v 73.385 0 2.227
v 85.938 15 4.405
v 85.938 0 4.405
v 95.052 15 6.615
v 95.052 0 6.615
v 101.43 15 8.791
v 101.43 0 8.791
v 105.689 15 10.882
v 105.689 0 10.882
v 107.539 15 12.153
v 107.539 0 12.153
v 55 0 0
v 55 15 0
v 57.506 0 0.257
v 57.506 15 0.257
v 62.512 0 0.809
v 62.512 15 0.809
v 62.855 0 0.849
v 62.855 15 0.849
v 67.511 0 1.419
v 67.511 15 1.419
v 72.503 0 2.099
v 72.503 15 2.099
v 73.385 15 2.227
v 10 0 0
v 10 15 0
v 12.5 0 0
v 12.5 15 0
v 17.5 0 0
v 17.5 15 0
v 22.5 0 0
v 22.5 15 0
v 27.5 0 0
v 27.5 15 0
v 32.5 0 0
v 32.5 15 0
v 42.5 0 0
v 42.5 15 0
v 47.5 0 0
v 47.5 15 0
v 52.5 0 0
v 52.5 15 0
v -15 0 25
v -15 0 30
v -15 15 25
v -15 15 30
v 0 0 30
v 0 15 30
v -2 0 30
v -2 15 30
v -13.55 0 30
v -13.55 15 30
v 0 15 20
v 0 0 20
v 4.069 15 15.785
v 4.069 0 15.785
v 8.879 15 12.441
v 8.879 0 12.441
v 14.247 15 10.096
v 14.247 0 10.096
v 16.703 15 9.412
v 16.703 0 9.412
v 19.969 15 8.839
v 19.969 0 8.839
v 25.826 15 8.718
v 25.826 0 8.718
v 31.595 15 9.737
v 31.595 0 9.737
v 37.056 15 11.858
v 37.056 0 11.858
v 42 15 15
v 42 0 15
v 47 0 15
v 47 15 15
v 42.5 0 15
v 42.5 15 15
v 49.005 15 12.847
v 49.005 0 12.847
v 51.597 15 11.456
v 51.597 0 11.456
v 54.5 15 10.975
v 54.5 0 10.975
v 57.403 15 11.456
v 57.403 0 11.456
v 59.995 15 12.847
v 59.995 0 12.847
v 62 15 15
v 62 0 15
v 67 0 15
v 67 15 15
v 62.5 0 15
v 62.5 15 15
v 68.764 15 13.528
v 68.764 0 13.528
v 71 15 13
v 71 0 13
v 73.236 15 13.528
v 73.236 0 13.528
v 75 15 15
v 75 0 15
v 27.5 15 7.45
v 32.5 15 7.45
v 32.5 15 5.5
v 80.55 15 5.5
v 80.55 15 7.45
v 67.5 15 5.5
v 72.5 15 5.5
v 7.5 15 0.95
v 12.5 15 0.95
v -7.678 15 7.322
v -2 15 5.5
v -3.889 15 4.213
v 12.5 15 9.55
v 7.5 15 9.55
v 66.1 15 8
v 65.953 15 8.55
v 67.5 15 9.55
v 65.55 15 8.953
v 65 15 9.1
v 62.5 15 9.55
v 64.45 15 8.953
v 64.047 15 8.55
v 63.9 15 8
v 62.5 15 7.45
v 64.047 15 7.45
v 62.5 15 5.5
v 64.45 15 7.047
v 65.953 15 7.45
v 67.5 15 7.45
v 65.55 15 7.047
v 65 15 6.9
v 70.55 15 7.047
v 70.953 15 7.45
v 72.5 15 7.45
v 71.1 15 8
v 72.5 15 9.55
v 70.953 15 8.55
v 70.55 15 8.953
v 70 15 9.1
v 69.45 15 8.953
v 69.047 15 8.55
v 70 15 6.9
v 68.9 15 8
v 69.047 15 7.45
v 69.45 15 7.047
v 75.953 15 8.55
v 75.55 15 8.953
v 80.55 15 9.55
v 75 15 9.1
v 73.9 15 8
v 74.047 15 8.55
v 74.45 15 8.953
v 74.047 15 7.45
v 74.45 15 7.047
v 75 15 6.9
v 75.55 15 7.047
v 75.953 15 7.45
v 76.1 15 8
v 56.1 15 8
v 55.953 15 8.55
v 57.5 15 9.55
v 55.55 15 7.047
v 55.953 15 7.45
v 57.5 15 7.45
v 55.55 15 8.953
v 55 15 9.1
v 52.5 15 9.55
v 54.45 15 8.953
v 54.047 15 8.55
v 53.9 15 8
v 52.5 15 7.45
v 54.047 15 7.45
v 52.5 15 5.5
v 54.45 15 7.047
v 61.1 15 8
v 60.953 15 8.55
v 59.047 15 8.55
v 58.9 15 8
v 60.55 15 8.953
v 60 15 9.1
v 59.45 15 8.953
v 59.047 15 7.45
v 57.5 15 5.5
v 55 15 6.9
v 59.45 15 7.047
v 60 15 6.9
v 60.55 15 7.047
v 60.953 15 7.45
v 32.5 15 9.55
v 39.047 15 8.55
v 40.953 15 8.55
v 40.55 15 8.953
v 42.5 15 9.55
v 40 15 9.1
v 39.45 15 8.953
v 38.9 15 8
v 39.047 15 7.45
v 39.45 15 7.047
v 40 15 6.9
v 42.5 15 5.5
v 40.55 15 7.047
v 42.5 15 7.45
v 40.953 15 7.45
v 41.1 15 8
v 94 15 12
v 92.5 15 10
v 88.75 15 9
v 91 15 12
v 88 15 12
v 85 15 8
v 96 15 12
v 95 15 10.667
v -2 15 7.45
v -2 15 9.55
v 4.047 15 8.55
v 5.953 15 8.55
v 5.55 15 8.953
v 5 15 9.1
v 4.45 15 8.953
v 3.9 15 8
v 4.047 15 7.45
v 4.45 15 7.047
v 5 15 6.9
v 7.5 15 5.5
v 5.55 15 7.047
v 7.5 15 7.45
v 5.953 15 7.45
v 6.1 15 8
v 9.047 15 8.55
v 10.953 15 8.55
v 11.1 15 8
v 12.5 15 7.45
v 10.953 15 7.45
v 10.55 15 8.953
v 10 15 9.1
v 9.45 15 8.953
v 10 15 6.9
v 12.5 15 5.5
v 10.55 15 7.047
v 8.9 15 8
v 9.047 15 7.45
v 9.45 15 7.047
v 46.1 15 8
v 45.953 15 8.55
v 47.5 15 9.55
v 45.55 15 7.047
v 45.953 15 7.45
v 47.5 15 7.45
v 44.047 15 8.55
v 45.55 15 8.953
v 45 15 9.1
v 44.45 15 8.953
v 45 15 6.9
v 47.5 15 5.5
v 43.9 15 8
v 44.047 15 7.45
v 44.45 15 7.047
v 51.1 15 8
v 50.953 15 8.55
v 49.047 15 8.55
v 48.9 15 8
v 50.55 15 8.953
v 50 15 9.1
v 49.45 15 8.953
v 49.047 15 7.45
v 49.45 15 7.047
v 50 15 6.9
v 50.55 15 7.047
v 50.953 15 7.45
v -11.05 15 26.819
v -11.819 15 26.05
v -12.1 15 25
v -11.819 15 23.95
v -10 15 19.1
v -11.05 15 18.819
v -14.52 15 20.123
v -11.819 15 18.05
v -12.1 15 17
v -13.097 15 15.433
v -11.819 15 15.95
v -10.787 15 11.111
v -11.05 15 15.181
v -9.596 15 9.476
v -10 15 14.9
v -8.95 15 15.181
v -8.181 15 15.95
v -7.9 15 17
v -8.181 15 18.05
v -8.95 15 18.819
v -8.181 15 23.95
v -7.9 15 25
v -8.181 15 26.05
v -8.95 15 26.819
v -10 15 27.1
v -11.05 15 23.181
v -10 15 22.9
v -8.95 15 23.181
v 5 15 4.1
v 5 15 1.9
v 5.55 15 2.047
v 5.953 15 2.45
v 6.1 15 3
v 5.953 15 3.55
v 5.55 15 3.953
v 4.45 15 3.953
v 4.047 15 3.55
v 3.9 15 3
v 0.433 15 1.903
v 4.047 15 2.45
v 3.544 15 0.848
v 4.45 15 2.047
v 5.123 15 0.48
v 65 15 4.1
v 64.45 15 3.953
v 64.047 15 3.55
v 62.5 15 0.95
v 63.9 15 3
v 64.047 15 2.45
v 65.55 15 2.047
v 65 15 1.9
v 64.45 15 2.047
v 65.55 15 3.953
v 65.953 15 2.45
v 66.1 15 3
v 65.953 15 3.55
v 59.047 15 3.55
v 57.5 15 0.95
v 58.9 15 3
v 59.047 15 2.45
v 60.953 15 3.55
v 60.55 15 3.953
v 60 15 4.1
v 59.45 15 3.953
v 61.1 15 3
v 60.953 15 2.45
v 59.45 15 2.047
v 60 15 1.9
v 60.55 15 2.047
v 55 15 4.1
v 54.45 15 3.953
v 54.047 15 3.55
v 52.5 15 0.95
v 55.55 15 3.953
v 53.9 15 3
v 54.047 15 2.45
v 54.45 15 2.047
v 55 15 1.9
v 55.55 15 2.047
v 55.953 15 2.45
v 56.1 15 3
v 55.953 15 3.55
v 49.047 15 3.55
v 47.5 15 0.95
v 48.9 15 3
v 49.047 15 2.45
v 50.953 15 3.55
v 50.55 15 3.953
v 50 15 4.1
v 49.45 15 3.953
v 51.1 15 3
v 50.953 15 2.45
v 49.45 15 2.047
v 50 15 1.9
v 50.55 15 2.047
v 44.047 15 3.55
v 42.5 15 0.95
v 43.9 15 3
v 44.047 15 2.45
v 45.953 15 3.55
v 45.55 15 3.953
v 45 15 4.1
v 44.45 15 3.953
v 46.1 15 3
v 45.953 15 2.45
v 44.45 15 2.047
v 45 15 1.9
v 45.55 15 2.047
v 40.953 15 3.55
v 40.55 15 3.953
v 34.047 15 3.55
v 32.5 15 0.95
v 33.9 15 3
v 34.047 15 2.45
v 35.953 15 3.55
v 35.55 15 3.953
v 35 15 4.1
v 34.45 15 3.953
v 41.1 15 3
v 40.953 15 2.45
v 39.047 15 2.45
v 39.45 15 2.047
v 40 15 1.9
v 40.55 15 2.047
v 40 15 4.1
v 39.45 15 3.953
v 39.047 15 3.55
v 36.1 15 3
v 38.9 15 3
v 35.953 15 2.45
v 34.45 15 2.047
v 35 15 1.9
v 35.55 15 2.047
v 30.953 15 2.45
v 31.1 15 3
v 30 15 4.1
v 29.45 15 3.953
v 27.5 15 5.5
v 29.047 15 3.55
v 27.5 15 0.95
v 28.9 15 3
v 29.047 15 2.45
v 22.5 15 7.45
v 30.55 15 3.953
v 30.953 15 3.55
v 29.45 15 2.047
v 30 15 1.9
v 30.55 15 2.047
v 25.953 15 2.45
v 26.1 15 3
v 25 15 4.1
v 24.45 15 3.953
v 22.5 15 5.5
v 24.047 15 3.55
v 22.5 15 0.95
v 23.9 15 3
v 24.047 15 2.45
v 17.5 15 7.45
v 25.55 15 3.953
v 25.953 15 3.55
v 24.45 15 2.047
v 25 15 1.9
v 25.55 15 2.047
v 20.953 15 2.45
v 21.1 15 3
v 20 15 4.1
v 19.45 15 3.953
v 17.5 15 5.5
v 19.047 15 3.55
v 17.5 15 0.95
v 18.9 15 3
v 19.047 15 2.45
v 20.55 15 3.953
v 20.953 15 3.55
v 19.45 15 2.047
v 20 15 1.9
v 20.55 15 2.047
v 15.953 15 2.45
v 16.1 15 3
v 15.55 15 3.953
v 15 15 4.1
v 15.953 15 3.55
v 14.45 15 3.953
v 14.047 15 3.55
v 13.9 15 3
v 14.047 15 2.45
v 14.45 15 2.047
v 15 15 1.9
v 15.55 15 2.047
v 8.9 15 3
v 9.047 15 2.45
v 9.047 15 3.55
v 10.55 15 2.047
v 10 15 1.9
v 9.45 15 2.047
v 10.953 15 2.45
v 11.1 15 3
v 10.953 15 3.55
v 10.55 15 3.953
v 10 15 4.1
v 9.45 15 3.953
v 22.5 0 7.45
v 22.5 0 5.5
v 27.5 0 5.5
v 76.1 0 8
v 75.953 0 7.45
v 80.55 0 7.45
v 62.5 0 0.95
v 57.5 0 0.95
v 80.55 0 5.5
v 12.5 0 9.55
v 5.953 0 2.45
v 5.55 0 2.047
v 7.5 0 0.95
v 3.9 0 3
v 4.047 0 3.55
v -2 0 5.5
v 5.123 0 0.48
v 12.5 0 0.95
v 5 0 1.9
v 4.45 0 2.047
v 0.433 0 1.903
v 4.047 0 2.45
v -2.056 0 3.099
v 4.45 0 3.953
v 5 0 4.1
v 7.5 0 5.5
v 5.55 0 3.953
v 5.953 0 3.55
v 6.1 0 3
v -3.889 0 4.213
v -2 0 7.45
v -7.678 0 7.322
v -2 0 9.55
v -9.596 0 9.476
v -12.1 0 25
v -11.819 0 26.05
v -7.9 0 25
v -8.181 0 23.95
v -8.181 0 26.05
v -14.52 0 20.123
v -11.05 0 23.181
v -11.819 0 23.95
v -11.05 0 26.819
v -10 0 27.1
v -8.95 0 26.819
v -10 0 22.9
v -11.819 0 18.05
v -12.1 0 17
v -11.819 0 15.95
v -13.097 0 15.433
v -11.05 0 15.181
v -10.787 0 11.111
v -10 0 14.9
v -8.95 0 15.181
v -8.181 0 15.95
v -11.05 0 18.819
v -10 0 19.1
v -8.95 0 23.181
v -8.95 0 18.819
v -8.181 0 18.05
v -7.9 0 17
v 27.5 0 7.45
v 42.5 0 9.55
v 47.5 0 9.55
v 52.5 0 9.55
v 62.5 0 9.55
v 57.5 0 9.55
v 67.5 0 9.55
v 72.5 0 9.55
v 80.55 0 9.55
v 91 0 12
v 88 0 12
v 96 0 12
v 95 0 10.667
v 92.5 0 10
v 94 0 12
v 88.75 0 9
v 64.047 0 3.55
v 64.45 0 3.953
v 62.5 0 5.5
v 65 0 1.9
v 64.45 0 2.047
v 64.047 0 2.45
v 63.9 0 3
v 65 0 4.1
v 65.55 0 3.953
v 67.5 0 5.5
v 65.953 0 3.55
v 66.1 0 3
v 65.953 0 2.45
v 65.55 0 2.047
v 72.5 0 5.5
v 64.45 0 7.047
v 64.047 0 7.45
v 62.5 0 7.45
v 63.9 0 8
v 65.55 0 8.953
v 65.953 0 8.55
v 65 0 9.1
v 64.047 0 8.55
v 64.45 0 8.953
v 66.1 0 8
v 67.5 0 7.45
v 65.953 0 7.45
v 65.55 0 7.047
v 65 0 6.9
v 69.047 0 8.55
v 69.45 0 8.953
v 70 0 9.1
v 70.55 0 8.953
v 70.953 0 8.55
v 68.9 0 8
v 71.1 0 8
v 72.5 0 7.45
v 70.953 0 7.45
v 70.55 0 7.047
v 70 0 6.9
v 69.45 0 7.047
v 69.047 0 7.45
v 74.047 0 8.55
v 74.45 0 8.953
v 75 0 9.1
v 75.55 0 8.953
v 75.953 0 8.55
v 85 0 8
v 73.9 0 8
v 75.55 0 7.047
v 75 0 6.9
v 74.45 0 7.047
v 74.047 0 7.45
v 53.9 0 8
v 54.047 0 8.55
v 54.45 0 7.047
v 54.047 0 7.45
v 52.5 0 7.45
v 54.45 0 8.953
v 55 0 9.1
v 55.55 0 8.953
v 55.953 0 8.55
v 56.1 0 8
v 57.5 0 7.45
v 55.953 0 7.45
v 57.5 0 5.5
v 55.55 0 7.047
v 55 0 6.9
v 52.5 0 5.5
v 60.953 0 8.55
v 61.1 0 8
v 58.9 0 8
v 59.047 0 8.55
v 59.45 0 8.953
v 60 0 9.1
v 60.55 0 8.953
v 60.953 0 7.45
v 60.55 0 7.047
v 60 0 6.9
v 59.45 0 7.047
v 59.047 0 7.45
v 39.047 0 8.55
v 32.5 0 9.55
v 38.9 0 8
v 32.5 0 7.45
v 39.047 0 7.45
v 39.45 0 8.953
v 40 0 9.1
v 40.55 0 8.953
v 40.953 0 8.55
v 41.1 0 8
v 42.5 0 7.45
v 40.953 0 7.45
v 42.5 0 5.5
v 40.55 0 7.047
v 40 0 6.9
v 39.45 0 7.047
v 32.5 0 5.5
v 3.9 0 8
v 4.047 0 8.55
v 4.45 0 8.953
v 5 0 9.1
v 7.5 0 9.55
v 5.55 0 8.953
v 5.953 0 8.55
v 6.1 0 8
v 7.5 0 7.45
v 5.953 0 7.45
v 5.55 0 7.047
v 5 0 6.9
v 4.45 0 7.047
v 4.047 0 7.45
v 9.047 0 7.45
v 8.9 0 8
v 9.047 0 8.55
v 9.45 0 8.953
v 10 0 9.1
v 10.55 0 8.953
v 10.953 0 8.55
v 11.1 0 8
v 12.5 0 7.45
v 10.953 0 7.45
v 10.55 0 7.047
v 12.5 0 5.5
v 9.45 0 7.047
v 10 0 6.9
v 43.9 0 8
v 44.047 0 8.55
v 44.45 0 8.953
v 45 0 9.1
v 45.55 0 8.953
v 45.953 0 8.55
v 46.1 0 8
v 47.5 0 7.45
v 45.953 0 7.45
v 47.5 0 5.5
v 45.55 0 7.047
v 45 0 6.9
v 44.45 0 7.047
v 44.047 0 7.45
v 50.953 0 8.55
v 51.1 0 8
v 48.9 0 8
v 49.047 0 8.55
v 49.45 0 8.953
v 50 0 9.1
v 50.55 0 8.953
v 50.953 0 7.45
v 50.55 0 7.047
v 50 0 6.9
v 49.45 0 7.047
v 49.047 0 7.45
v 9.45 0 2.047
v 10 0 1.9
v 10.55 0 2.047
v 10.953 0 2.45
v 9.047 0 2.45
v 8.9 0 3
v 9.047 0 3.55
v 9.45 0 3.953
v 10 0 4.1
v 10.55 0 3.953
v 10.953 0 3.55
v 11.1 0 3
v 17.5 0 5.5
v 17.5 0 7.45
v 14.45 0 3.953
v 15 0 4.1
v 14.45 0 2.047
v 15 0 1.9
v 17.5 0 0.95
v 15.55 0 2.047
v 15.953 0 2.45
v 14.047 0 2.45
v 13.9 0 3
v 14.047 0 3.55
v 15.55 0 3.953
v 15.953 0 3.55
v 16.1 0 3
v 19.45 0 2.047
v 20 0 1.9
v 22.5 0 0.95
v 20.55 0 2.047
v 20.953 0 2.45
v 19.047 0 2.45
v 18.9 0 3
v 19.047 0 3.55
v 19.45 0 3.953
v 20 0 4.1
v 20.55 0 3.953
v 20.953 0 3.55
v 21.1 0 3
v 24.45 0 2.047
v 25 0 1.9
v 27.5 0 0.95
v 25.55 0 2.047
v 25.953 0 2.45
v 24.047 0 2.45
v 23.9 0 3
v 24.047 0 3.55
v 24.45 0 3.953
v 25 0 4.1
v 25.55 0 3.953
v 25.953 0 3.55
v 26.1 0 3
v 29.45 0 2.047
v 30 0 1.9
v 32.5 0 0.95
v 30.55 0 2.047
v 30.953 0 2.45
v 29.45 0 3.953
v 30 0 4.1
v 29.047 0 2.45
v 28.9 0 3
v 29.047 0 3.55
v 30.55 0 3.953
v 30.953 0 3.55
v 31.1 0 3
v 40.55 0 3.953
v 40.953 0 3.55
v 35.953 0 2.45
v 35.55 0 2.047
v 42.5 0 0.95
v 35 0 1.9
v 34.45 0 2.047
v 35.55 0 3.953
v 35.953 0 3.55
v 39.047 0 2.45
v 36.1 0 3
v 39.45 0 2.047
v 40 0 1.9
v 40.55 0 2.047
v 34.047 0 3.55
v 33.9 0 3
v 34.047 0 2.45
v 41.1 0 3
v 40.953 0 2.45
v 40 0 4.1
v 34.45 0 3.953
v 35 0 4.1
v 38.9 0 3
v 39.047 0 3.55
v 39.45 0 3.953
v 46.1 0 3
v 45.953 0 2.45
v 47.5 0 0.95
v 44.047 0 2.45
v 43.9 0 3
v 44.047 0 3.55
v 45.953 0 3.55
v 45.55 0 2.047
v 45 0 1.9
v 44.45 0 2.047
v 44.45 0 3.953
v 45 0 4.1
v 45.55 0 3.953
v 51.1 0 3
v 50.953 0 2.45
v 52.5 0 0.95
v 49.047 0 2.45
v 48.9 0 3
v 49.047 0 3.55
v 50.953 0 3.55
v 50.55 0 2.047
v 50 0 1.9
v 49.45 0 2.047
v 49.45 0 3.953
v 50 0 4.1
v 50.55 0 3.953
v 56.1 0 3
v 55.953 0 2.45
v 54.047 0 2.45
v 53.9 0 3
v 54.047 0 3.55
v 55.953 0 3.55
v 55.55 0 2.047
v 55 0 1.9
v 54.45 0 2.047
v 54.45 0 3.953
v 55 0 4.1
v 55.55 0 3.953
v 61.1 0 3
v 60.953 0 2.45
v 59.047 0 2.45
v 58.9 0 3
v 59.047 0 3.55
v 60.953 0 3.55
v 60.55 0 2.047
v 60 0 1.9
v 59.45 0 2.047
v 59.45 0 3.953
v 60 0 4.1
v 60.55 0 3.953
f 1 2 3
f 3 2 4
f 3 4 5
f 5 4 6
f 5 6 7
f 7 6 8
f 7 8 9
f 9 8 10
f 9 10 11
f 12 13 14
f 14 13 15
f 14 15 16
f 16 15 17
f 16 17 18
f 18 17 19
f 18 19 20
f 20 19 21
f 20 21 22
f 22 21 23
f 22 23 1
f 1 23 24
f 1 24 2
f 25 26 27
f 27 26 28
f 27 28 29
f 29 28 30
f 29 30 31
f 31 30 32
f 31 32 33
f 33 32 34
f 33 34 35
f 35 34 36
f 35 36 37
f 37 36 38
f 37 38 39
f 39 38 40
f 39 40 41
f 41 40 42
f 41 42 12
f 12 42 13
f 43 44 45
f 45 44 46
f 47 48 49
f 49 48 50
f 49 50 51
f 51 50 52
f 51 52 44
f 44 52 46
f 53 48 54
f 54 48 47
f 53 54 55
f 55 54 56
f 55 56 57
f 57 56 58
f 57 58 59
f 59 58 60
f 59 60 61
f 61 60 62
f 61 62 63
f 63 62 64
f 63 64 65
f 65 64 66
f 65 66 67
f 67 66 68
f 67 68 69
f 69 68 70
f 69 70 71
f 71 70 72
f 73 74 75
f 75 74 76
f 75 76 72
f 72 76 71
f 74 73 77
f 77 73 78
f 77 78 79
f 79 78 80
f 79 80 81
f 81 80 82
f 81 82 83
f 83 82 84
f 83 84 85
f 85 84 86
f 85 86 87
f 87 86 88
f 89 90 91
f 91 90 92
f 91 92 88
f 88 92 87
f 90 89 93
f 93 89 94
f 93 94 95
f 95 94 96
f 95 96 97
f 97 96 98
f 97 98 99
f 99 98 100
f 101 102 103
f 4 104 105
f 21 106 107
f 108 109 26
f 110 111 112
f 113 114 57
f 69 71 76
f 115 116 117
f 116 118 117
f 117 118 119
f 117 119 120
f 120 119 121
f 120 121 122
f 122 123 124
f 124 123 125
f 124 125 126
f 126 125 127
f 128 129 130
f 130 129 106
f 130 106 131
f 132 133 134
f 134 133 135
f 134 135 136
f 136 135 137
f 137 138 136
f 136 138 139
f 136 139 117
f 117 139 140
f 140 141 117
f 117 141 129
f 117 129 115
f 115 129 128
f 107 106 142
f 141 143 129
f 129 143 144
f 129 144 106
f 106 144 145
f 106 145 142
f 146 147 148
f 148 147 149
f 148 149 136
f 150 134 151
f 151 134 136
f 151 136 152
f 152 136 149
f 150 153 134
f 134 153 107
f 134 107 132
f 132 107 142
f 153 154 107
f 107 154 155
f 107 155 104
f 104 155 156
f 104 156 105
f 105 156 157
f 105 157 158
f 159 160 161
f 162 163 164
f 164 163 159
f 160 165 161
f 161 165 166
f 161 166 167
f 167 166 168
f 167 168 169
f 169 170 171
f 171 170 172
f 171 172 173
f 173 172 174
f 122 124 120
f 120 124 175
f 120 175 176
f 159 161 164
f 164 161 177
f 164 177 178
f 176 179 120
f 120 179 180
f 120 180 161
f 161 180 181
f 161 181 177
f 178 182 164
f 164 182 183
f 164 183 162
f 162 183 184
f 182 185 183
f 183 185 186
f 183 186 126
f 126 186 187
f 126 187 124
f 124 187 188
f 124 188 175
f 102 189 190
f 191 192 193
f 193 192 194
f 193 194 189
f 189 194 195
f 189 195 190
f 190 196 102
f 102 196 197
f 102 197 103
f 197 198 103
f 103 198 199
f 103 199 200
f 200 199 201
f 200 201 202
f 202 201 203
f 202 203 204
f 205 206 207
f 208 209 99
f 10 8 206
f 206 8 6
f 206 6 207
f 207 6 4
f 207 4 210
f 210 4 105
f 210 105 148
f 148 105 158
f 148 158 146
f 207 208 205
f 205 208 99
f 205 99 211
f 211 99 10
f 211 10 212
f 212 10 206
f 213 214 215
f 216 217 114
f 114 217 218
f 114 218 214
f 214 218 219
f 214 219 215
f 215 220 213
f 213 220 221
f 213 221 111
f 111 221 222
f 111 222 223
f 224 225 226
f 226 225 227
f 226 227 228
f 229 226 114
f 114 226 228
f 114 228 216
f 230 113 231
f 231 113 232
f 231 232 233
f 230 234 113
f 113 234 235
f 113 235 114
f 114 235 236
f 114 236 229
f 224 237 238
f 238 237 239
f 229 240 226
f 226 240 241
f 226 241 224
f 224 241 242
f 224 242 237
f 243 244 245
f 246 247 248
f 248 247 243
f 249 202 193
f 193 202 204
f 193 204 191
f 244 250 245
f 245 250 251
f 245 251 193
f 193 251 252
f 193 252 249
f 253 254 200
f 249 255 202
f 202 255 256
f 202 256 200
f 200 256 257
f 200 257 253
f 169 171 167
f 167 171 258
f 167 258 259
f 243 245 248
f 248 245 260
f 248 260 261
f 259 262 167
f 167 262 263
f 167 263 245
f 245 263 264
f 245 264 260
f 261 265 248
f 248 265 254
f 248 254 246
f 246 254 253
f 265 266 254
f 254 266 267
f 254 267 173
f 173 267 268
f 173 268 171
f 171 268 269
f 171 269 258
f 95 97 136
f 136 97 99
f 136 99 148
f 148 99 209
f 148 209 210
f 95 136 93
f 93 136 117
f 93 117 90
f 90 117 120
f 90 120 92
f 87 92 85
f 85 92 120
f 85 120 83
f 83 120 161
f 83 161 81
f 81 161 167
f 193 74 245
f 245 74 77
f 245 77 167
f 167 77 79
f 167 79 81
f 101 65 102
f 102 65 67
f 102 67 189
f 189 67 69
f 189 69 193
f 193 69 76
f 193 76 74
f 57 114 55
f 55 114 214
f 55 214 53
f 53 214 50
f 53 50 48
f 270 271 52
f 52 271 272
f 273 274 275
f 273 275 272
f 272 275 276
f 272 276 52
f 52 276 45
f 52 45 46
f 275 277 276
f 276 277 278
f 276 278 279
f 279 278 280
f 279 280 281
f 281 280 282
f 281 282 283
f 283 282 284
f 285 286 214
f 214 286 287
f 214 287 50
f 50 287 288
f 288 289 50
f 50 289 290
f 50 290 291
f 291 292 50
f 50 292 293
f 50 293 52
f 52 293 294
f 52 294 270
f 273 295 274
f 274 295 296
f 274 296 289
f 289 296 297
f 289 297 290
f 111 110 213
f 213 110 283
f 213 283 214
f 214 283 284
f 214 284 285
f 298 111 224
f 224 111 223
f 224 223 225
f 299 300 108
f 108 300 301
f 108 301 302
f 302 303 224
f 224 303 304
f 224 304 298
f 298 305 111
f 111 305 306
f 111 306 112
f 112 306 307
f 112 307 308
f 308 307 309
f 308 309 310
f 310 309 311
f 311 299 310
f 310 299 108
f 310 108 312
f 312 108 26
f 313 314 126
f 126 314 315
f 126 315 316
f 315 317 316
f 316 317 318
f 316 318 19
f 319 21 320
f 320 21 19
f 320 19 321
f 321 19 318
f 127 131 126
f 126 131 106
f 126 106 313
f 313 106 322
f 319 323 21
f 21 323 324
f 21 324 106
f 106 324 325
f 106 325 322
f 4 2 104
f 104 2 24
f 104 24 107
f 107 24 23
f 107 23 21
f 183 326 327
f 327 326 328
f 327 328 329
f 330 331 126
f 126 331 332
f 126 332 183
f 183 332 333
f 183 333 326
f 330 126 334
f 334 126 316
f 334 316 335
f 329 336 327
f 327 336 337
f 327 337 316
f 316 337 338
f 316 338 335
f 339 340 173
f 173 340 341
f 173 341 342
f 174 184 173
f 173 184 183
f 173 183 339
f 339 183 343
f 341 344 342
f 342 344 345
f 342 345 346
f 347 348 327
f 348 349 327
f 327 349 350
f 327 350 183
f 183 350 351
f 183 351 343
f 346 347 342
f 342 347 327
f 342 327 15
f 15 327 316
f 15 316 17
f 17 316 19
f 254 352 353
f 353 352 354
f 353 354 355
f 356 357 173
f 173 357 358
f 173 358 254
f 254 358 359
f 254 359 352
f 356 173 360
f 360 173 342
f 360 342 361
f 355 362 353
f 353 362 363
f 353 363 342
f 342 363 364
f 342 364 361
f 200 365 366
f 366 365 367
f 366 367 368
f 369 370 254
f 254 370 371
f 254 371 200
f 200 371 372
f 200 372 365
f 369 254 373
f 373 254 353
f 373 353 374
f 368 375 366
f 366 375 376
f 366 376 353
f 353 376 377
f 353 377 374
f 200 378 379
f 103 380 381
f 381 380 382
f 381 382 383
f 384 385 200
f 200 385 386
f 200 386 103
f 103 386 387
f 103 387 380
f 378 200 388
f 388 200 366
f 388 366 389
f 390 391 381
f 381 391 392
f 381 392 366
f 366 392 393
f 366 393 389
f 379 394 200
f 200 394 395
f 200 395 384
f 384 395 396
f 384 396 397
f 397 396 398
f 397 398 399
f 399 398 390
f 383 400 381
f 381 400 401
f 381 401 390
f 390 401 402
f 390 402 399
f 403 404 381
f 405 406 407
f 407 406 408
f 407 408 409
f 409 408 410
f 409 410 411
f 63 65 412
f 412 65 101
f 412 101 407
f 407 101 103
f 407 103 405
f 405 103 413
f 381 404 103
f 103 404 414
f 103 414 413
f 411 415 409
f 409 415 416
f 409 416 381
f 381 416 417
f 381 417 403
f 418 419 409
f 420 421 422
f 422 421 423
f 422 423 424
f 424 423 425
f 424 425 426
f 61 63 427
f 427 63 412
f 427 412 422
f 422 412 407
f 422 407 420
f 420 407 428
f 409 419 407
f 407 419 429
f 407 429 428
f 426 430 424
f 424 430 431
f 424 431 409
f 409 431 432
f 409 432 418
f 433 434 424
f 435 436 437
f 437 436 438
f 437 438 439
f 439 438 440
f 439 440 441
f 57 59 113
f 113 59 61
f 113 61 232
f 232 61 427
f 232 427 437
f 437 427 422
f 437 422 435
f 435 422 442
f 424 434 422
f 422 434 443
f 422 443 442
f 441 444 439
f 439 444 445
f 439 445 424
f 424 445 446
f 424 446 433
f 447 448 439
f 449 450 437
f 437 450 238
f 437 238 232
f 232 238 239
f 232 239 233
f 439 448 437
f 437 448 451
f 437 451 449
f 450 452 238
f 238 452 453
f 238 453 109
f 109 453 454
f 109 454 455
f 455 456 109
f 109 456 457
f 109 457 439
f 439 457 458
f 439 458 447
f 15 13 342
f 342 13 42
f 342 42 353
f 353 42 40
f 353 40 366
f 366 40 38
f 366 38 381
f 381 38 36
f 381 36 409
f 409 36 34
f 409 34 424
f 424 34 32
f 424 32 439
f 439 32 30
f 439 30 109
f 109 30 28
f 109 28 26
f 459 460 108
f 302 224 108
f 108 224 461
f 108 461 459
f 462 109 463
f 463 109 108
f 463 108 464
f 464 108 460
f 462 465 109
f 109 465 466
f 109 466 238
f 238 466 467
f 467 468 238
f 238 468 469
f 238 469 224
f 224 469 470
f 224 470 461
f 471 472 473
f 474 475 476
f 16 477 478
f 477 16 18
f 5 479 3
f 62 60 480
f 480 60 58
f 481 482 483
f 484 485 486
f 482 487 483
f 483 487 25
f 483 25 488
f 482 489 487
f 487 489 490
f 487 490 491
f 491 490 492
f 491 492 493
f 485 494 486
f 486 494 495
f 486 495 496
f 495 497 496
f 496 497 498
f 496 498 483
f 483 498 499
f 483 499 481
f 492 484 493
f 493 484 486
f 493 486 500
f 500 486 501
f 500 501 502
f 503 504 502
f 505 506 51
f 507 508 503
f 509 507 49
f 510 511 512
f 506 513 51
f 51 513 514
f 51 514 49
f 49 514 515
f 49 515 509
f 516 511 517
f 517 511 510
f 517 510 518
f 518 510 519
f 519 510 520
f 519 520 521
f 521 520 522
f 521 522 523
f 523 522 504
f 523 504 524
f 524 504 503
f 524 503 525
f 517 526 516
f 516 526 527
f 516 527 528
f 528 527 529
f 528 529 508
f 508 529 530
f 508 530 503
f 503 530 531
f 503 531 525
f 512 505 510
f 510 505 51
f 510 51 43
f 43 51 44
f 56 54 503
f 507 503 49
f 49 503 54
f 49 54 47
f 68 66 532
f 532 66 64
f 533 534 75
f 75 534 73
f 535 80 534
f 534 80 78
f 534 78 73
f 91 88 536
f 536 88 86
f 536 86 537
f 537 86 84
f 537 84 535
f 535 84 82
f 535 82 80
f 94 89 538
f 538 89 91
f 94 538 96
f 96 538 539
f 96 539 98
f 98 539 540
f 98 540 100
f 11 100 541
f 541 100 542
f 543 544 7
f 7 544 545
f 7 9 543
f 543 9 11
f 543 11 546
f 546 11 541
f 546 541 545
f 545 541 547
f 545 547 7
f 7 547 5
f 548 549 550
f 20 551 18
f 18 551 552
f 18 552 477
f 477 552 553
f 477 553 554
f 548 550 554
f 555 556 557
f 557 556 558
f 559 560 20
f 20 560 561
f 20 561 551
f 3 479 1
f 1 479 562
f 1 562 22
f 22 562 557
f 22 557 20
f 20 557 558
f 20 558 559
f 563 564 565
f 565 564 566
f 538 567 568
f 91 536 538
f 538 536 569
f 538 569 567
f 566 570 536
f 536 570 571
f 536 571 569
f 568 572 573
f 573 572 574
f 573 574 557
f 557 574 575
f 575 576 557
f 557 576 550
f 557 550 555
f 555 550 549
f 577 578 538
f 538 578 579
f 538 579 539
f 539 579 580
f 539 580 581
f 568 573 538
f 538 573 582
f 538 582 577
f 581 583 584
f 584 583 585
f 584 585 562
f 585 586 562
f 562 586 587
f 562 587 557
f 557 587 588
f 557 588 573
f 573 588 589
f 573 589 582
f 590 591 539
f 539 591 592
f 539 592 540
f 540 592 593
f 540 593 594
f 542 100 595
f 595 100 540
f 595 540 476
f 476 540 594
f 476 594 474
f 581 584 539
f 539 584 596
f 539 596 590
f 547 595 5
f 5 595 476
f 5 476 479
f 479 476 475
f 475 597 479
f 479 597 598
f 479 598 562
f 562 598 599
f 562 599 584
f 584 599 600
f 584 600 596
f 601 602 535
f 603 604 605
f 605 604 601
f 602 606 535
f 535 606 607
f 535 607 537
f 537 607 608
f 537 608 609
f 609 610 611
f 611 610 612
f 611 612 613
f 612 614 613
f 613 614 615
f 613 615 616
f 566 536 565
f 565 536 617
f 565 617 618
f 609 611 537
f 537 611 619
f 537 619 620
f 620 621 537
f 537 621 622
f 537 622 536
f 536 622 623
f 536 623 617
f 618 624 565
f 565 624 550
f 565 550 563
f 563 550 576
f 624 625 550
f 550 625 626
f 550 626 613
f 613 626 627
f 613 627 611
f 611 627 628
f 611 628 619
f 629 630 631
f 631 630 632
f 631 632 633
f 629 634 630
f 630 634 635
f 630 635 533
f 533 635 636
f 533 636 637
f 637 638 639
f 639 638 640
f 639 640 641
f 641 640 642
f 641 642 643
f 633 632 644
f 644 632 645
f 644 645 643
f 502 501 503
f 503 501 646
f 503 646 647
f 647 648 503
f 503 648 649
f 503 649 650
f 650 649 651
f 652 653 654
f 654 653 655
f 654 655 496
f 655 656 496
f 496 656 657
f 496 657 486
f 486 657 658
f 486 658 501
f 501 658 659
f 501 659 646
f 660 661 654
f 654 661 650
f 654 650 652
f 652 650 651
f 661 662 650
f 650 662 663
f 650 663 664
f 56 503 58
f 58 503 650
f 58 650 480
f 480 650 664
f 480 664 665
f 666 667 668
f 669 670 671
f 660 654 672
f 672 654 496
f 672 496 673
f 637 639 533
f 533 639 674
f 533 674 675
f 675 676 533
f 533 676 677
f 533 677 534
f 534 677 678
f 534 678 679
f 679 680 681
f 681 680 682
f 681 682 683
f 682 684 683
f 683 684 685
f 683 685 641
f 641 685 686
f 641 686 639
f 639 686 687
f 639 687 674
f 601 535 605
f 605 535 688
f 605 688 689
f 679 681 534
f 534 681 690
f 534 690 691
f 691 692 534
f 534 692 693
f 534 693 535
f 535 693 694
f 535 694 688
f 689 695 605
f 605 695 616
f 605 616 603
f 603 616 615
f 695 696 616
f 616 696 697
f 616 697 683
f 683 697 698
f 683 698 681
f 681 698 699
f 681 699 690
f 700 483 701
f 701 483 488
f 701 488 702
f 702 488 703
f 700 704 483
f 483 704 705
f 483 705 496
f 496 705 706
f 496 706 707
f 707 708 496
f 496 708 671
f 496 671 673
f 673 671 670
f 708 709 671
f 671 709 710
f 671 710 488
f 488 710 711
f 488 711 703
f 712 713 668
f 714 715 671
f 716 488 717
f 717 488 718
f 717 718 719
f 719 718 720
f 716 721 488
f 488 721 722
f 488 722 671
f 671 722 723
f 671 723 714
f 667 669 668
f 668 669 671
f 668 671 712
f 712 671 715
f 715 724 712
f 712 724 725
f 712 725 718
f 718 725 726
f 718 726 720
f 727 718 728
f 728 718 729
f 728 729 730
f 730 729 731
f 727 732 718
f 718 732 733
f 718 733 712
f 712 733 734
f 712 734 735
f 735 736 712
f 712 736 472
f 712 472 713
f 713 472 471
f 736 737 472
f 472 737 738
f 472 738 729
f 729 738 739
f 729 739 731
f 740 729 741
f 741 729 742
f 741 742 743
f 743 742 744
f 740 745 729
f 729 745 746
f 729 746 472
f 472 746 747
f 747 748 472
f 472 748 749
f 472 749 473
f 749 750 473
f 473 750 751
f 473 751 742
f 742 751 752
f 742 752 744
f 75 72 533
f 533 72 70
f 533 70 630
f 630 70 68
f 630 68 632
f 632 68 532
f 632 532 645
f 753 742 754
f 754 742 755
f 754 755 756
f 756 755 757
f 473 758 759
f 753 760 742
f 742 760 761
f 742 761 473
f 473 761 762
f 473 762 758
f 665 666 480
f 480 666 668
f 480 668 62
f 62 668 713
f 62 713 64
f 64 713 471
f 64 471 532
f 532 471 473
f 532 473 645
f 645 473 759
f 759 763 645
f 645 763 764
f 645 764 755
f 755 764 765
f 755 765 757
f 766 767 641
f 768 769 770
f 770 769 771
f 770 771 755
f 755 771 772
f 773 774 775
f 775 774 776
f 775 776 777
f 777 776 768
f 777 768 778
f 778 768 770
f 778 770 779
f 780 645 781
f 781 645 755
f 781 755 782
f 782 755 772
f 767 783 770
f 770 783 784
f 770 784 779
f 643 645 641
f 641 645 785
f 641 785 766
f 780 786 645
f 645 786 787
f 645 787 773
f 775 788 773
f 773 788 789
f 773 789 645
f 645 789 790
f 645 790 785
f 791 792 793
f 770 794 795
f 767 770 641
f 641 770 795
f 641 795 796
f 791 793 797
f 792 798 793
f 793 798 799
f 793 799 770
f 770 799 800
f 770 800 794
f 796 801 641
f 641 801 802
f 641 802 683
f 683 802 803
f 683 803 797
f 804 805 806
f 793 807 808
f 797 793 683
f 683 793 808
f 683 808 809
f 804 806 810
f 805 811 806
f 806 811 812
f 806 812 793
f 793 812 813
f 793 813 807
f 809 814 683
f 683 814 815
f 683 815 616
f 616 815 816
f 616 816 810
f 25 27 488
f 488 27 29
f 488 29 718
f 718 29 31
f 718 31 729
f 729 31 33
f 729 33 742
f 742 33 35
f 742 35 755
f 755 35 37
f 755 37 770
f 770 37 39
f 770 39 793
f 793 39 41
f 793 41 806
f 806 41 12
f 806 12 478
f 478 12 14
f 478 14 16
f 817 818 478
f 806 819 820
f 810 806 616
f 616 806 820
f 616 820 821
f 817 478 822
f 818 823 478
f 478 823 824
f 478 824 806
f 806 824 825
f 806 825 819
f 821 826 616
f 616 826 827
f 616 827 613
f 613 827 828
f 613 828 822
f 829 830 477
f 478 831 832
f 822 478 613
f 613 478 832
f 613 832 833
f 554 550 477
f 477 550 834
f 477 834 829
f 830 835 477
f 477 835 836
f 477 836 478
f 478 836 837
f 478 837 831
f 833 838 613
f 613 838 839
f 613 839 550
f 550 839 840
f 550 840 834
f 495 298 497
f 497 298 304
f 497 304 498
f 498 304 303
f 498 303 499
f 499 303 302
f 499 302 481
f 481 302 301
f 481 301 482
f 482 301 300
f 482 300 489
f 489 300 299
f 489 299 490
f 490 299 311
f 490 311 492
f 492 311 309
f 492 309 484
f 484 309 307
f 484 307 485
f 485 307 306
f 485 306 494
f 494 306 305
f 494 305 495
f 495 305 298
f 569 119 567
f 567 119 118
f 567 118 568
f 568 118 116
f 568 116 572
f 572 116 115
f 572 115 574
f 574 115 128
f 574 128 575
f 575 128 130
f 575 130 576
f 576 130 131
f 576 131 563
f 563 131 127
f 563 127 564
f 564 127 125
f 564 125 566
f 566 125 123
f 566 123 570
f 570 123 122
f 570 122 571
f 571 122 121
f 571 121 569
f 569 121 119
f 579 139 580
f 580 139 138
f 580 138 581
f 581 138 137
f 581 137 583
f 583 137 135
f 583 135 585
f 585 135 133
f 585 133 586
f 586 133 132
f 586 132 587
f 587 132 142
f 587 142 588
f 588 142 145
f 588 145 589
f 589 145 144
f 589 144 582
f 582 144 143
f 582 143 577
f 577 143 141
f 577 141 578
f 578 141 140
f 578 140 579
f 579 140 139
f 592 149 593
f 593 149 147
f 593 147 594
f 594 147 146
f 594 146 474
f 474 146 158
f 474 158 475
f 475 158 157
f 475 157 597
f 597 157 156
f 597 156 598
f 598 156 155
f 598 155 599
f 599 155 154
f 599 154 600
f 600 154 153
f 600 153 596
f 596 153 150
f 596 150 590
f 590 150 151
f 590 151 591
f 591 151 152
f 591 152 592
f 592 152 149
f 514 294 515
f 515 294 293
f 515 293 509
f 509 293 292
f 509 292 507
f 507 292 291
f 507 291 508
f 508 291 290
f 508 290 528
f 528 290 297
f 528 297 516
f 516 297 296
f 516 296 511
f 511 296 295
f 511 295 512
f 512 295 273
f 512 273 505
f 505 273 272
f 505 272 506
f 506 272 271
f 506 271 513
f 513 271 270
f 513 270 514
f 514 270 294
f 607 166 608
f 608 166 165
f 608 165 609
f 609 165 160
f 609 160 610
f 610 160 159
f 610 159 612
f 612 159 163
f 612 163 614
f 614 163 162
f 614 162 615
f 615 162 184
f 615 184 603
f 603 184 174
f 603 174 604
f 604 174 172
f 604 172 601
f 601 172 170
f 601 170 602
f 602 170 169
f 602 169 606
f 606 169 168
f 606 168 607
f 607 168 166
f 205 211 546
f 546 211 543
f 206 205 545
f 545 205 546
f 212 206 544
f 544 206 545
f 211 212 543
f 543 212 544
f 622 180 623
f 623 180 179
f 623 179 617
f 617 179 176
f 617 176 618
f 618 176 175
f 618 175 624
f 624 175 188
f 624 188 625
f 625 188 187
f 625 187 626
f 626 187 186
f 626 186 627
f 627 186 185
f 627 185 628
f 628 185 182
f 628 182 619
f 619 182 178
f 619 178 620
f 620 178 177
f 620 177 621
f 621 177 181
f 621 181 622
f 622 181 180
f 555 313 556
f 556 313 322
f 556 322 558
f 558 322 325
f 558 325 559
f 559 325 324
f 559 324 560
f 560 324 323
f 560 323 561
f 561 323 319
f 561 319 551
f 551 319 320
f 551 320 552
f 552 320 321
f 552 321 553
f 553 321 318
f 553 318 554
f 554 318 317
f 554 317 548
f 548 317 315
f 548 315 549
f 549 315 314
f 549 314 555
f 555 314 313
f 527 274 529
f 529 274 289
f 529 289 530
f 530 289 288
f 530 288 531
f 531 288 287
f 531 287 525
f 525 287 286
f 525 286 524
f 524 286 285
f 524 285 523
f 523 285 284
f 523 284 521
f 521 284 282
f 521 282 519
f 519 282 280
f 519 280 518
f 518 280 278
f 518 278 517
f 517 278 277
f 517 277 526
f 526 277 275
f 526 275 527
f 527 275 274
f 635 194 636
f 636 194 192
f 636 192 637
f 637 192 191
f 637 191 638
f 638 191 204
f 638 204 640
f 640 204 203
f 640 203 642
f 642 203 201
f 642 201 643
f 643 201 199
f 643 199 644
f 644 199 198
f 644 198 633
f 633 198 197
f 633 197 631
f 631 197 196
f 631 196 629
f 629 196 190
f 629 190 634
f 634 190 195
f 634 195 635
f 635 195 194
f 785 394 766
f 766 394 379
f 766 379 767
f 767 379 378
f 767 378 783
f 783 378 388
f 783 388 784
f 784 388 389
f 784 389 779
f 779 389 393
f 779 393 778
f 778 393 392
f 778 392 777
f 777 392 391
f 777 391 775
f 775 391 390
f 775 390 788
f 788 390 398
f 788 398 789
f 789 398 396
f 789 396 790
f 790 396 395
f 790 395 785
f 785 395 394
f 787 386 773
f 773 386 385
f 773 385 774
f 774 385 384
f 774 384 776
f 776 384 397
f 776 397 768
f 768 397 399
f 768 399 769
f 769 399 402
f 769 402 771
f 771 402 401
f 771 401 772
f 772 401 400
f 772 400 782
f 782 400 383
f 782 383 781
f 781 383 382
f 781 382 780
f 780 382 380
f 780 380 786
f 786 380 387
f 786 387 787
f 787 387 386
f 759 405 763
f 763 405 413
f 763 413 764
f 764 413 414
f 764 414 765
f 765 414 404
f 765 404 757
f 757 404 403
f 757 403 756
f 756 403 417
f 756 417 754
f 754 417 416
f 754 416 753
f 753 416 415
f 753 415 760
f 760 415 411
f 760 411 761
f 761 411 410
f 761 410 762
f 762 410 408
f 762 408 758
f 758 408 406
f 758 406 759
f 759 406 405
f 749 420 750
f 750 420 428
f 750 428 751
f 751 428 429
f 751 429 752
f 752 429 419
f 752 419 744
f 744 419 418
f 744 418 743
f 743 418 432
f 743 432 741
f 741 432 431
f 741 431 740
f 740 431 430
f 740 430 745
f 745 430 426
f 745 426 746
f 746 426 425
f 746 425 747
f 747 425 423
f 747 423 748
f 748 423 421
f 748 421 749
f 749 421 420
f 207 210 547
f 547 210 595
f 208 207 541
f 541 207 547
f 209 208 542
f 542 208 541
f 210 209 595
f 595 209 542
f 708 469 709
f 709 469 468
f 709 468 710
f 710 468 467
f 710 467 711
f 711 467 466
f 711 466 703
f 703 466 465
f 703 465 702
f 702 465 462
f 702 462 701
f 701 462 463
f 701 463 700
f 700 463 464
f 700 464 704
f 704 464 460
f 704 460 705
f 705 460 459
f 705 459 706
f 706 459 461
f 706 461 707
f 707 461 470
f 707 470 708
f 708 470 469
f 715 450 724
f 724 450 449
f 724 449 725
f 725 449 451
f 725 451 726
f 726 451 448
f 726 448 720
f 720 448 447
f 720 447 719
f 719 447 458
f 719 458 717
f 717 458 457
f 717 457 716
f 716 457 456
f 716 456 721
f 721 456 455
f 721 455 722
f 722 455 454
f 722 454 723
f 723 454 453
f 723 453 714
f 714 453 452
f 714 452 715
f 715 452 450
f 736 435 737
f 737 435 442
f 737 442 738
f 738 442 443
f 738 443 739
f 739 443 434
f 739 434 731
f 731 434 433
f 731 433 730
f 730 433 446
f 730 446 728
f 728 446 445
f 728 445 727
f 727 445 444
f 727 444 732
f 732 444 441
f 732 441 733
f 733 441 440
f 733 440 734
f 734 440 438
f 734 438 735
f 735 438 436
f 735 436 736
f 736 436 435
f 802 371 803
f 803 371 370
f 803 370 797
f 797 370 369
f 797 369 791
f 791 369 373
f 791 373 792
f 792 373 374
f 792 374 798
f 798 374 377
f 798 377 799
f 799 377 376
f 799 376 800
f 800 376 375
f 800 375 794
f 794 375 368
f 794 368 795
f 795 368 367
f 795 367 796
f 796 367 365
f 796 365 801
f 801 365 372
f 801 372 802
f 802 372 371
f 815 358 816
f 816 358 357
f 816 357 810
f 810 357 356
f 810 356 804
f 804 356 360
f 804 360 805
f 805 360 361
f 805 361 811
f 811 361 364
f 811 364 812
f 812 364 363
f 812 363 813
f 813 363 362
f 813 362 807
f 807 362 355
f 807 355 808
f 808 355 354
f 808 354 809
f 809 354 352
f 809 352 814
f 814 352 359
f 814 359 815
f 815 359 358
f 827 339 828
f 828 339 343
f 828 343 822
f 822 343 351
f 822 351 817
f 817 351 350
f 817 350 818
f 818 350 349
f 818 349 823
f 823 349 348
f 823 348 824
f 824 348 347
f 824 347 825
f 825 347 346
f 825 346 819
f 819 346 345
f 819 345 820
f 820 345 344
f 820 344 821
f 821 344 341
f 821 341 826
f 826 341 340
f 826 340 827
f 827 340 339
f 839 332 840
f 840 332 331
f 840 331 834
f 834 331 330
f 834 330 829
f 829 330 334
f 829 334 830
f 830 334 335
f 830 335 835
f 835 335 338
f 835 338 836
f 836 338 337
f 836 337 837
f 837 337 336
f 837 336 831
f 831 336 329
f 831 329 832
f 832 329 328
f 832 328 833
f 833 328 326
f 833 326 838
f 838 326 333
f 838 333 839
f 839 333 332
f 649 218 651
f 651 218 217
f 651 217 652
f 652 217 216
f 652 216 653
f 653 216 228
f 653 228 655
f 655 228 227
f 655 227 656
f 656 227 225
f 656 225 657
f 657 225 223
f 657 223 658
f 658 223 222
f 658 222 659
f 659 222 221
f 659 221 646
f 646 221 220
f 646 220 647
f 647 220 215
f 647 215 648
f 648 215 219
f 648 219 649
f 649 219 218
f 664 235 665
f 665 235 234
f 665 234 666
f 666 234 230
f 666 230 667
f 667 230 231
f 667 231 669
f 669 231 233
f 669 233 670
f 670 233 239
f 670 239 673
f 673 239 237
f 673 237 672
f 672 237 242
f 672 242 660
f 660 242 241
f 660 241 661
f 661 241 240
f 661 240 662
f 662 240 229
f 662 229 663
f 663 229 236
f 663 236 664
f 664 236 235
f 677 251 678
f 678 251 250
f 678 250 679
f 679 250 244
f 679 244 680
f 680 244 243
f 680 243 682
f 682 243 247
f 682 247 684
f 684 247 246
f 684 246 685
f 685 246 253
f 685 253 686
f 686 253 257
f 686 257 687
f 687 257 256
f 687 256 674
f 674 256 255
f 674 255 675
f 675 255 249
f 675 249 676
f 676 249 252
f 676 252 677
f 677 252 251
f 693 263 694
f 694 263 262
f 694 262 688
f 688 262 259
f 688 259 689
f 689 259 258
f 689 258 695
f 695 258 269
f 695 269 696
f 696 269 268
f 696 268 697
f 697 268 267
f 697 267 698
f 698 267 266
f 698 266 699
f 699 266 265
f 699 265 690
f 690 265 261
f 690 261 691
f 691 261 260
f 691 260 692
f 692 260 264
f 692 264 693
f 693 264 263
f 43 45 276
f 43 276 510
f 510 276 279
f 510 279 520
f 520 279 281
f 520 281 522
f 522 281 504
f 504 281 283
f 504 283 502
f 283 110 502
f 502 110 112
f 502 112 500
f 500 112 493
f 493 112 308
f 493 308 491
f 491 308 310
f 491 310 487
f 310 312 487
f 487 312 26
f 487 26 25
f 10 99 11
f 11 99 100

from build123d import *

# Parameters (mm, degrees)
SKETCH_1_W          = 15
SKETCH_1_H          = 30
EXTRUDE_1_DEPTH     = 15
SKETCH_2_R          = 1.1
SKETCH_2_R_2        = 2.1
CUT_EXTRUDE_1_DEPTH = 15
FILLET_2_R          = 25
CUT_EXTRUDE_2_REACH = 117


with BuildPart() as part:
    # 草图1 → 凸台-拉伸1 (new body)
    with BuildSketch(Plane(origin=(0, 0, 0), x_dir=(1, 0, 0), z_dir=(0, 1, 0))):
        with BuildLine():
            Line((55, 0), (0, 0))
            Line((0, 0), (0, -20))
            ThreePointArc((0, -20), (19.968938053, -8.839079645), (42, -15))
            Line((42, -15), (47, -15))
            ThreePointArc((47, -15), (54.5, -10.974937186), (62, -15))
            Line((62, -15), (67, -15))
            ThreePointArc((67, -15), (71, -13), (75, -15))
            Line((75, -15), (110, -15))
            add(Edge.make_bspline(
                [(55, 0), (105, -5), (110, -15)],
                knots=[0, 0, 0, 1, 1, 1], degree=2))
        make_face()
        with Locations((-7.5, -15)):
            Rectangle(SKETCH_1_W, SKETCH_1_H)
    extrude(amount=EXTRUDE_1_DEPTH)

    # 草图2 → 切除-拉伸1 (cut)
    with BuildSketch(Plane(origin=(0, 15, 0), x_dir=(1, 0, 0), z_dir=(0, 1, 0))):
        with Locations(Location((5, -3, 0), (0, 0, 270))):
            Circle(SKETCH_2_R)
        with Locations(Location((10, -3, 0), (0, 0, 270))):
            Circle(SKETCH_2_R)
        with Locations(Location((15, -3, 0), (0, 0, 270))):
            Circle(SKETCH_2_R)
        with Locations(Location((20, -3, 0), (0, 0, 270))):
            Circle(SKETCH_2_R)
        with Locations(Location((25, -3, 0), (0, 0, 270))):
            Circle(SKETCH_2_R)
        with Locations(Location((30, -3, 0), (0, 0, 270))):
            Circle(SKETCH_2_R)
        with Locations(Location((35, -3, 0), (0, 0, 270))):
            Circle(SKETCH_2_R)
        with Locations(Location((40, -3, 0), (0, 0, 270))):
            Circle(SKETCH_2_R)
        with Locations(Location((45, -3, 0), (0, 0, 270))):
            Circle(SKETCH_2_R)
        with Locations(Location((50, -3, 0), (0, 0, 270))):
            Circle(SKETCH_2_R)
        with Locations(Location((55, -3, 0), (0, 0, 270))):
            Circle(SKETCH_2_R)
        with Locations(Location((60, -3, 0), (0, 0, 270))):
            Circle(SKETCH_2_R)
        with Locations(Location((5, -8, 0), (0, 0, 270))):
            Circle(SKETCH_2_R)
        with Locations(Location((10, -8, 0), (0, 0, 270))):
            Circle(SKETCH_2_R)
        with Locations(Location((45, -8, 0), (0, 0, 270))):
            Circle(SKETCH_2_R)
        with Locations(Location((50, -8, 0), (0, 0, 270))):
            Circle(SKETCH_2_R)
        with Locations(Location((55, -8, 0), (0, 0, 270))):
            Circle(SKETCH_2_R)
        with Locations(Location((60, -8, 0), (0, 0, 270))):
            Circle(SKETCH_2_R)
        with Locations(Location((65, -3, 0), (0, 0, 270))):
            Circle(SKETCH_2_R)
        with Locations(Location((65, -8, 0), (0, 0, 270))):
            Circle(SKETCH_2_R)
        with Locations(Location((70, -8, 0), (0, 0, 270))):
            Circle(SKETCH_2_R)
        with Locations(Location((75, -8, 0), (0, 0, 270))):
            Circle(SKETCH_2_R)
        with Locations(Location((-10, -25, 0), (0, 0, 270))):
            Circle(SKETCH_2_R_2)
        with Locations(Location((-10, -17, 0), (0, 0, 270))):
            Circle(SKETCH_2_R_2)
        with Locations(Location((40, -8, 0), (0, 0, 270))):
            Circle(SKETCH_2_R)
        Polygon((88, -12), (85, -8), (88.75, -9), (91, -12), align=None)
        Polygon((94, -12), (92.5, -10), (95, -10.666666667), (96, -12), align=None)
    extrude(amount=-CUT_EXTRUDE_1_DEPTH, mode=Mode.SUBTRACT)

    # 圆角2
    fillet_2_edges = [part.edges().sort_by_distance(p)[0] for p in [
        (-15, 7.5, 0),
    ]]
    fillet(fillet_2_edges, radius=FILLET_2_R)

    # 草图4 → 切除-拉伸2 (cut, up to next)
    with BuildSketch(Plane(origin=(0, 15, 0), x_dir=(1, 0, 0), z_dir=(0, 1, 0)), mode=Mode.PRIVATE) as cut_extrude_2_sk1:
        Polygon((75, -15), (107.538963766, -12.153209548), (110, -12.153209548), (110, -15), align=None)
    cut_extrude_2_tool1 = extrude(cut_extrude_2_sk1.sketch, amount=-CUT_EXTRUDE_2_REACH, mode=Mode.PRIVATE) & part.part
    add(cut_extrude_2_tool1.solids().sort_by_distance((98.27944, 15, 13.988729))[0], mode=Mode.SUBTRACT)


solid = part.part
